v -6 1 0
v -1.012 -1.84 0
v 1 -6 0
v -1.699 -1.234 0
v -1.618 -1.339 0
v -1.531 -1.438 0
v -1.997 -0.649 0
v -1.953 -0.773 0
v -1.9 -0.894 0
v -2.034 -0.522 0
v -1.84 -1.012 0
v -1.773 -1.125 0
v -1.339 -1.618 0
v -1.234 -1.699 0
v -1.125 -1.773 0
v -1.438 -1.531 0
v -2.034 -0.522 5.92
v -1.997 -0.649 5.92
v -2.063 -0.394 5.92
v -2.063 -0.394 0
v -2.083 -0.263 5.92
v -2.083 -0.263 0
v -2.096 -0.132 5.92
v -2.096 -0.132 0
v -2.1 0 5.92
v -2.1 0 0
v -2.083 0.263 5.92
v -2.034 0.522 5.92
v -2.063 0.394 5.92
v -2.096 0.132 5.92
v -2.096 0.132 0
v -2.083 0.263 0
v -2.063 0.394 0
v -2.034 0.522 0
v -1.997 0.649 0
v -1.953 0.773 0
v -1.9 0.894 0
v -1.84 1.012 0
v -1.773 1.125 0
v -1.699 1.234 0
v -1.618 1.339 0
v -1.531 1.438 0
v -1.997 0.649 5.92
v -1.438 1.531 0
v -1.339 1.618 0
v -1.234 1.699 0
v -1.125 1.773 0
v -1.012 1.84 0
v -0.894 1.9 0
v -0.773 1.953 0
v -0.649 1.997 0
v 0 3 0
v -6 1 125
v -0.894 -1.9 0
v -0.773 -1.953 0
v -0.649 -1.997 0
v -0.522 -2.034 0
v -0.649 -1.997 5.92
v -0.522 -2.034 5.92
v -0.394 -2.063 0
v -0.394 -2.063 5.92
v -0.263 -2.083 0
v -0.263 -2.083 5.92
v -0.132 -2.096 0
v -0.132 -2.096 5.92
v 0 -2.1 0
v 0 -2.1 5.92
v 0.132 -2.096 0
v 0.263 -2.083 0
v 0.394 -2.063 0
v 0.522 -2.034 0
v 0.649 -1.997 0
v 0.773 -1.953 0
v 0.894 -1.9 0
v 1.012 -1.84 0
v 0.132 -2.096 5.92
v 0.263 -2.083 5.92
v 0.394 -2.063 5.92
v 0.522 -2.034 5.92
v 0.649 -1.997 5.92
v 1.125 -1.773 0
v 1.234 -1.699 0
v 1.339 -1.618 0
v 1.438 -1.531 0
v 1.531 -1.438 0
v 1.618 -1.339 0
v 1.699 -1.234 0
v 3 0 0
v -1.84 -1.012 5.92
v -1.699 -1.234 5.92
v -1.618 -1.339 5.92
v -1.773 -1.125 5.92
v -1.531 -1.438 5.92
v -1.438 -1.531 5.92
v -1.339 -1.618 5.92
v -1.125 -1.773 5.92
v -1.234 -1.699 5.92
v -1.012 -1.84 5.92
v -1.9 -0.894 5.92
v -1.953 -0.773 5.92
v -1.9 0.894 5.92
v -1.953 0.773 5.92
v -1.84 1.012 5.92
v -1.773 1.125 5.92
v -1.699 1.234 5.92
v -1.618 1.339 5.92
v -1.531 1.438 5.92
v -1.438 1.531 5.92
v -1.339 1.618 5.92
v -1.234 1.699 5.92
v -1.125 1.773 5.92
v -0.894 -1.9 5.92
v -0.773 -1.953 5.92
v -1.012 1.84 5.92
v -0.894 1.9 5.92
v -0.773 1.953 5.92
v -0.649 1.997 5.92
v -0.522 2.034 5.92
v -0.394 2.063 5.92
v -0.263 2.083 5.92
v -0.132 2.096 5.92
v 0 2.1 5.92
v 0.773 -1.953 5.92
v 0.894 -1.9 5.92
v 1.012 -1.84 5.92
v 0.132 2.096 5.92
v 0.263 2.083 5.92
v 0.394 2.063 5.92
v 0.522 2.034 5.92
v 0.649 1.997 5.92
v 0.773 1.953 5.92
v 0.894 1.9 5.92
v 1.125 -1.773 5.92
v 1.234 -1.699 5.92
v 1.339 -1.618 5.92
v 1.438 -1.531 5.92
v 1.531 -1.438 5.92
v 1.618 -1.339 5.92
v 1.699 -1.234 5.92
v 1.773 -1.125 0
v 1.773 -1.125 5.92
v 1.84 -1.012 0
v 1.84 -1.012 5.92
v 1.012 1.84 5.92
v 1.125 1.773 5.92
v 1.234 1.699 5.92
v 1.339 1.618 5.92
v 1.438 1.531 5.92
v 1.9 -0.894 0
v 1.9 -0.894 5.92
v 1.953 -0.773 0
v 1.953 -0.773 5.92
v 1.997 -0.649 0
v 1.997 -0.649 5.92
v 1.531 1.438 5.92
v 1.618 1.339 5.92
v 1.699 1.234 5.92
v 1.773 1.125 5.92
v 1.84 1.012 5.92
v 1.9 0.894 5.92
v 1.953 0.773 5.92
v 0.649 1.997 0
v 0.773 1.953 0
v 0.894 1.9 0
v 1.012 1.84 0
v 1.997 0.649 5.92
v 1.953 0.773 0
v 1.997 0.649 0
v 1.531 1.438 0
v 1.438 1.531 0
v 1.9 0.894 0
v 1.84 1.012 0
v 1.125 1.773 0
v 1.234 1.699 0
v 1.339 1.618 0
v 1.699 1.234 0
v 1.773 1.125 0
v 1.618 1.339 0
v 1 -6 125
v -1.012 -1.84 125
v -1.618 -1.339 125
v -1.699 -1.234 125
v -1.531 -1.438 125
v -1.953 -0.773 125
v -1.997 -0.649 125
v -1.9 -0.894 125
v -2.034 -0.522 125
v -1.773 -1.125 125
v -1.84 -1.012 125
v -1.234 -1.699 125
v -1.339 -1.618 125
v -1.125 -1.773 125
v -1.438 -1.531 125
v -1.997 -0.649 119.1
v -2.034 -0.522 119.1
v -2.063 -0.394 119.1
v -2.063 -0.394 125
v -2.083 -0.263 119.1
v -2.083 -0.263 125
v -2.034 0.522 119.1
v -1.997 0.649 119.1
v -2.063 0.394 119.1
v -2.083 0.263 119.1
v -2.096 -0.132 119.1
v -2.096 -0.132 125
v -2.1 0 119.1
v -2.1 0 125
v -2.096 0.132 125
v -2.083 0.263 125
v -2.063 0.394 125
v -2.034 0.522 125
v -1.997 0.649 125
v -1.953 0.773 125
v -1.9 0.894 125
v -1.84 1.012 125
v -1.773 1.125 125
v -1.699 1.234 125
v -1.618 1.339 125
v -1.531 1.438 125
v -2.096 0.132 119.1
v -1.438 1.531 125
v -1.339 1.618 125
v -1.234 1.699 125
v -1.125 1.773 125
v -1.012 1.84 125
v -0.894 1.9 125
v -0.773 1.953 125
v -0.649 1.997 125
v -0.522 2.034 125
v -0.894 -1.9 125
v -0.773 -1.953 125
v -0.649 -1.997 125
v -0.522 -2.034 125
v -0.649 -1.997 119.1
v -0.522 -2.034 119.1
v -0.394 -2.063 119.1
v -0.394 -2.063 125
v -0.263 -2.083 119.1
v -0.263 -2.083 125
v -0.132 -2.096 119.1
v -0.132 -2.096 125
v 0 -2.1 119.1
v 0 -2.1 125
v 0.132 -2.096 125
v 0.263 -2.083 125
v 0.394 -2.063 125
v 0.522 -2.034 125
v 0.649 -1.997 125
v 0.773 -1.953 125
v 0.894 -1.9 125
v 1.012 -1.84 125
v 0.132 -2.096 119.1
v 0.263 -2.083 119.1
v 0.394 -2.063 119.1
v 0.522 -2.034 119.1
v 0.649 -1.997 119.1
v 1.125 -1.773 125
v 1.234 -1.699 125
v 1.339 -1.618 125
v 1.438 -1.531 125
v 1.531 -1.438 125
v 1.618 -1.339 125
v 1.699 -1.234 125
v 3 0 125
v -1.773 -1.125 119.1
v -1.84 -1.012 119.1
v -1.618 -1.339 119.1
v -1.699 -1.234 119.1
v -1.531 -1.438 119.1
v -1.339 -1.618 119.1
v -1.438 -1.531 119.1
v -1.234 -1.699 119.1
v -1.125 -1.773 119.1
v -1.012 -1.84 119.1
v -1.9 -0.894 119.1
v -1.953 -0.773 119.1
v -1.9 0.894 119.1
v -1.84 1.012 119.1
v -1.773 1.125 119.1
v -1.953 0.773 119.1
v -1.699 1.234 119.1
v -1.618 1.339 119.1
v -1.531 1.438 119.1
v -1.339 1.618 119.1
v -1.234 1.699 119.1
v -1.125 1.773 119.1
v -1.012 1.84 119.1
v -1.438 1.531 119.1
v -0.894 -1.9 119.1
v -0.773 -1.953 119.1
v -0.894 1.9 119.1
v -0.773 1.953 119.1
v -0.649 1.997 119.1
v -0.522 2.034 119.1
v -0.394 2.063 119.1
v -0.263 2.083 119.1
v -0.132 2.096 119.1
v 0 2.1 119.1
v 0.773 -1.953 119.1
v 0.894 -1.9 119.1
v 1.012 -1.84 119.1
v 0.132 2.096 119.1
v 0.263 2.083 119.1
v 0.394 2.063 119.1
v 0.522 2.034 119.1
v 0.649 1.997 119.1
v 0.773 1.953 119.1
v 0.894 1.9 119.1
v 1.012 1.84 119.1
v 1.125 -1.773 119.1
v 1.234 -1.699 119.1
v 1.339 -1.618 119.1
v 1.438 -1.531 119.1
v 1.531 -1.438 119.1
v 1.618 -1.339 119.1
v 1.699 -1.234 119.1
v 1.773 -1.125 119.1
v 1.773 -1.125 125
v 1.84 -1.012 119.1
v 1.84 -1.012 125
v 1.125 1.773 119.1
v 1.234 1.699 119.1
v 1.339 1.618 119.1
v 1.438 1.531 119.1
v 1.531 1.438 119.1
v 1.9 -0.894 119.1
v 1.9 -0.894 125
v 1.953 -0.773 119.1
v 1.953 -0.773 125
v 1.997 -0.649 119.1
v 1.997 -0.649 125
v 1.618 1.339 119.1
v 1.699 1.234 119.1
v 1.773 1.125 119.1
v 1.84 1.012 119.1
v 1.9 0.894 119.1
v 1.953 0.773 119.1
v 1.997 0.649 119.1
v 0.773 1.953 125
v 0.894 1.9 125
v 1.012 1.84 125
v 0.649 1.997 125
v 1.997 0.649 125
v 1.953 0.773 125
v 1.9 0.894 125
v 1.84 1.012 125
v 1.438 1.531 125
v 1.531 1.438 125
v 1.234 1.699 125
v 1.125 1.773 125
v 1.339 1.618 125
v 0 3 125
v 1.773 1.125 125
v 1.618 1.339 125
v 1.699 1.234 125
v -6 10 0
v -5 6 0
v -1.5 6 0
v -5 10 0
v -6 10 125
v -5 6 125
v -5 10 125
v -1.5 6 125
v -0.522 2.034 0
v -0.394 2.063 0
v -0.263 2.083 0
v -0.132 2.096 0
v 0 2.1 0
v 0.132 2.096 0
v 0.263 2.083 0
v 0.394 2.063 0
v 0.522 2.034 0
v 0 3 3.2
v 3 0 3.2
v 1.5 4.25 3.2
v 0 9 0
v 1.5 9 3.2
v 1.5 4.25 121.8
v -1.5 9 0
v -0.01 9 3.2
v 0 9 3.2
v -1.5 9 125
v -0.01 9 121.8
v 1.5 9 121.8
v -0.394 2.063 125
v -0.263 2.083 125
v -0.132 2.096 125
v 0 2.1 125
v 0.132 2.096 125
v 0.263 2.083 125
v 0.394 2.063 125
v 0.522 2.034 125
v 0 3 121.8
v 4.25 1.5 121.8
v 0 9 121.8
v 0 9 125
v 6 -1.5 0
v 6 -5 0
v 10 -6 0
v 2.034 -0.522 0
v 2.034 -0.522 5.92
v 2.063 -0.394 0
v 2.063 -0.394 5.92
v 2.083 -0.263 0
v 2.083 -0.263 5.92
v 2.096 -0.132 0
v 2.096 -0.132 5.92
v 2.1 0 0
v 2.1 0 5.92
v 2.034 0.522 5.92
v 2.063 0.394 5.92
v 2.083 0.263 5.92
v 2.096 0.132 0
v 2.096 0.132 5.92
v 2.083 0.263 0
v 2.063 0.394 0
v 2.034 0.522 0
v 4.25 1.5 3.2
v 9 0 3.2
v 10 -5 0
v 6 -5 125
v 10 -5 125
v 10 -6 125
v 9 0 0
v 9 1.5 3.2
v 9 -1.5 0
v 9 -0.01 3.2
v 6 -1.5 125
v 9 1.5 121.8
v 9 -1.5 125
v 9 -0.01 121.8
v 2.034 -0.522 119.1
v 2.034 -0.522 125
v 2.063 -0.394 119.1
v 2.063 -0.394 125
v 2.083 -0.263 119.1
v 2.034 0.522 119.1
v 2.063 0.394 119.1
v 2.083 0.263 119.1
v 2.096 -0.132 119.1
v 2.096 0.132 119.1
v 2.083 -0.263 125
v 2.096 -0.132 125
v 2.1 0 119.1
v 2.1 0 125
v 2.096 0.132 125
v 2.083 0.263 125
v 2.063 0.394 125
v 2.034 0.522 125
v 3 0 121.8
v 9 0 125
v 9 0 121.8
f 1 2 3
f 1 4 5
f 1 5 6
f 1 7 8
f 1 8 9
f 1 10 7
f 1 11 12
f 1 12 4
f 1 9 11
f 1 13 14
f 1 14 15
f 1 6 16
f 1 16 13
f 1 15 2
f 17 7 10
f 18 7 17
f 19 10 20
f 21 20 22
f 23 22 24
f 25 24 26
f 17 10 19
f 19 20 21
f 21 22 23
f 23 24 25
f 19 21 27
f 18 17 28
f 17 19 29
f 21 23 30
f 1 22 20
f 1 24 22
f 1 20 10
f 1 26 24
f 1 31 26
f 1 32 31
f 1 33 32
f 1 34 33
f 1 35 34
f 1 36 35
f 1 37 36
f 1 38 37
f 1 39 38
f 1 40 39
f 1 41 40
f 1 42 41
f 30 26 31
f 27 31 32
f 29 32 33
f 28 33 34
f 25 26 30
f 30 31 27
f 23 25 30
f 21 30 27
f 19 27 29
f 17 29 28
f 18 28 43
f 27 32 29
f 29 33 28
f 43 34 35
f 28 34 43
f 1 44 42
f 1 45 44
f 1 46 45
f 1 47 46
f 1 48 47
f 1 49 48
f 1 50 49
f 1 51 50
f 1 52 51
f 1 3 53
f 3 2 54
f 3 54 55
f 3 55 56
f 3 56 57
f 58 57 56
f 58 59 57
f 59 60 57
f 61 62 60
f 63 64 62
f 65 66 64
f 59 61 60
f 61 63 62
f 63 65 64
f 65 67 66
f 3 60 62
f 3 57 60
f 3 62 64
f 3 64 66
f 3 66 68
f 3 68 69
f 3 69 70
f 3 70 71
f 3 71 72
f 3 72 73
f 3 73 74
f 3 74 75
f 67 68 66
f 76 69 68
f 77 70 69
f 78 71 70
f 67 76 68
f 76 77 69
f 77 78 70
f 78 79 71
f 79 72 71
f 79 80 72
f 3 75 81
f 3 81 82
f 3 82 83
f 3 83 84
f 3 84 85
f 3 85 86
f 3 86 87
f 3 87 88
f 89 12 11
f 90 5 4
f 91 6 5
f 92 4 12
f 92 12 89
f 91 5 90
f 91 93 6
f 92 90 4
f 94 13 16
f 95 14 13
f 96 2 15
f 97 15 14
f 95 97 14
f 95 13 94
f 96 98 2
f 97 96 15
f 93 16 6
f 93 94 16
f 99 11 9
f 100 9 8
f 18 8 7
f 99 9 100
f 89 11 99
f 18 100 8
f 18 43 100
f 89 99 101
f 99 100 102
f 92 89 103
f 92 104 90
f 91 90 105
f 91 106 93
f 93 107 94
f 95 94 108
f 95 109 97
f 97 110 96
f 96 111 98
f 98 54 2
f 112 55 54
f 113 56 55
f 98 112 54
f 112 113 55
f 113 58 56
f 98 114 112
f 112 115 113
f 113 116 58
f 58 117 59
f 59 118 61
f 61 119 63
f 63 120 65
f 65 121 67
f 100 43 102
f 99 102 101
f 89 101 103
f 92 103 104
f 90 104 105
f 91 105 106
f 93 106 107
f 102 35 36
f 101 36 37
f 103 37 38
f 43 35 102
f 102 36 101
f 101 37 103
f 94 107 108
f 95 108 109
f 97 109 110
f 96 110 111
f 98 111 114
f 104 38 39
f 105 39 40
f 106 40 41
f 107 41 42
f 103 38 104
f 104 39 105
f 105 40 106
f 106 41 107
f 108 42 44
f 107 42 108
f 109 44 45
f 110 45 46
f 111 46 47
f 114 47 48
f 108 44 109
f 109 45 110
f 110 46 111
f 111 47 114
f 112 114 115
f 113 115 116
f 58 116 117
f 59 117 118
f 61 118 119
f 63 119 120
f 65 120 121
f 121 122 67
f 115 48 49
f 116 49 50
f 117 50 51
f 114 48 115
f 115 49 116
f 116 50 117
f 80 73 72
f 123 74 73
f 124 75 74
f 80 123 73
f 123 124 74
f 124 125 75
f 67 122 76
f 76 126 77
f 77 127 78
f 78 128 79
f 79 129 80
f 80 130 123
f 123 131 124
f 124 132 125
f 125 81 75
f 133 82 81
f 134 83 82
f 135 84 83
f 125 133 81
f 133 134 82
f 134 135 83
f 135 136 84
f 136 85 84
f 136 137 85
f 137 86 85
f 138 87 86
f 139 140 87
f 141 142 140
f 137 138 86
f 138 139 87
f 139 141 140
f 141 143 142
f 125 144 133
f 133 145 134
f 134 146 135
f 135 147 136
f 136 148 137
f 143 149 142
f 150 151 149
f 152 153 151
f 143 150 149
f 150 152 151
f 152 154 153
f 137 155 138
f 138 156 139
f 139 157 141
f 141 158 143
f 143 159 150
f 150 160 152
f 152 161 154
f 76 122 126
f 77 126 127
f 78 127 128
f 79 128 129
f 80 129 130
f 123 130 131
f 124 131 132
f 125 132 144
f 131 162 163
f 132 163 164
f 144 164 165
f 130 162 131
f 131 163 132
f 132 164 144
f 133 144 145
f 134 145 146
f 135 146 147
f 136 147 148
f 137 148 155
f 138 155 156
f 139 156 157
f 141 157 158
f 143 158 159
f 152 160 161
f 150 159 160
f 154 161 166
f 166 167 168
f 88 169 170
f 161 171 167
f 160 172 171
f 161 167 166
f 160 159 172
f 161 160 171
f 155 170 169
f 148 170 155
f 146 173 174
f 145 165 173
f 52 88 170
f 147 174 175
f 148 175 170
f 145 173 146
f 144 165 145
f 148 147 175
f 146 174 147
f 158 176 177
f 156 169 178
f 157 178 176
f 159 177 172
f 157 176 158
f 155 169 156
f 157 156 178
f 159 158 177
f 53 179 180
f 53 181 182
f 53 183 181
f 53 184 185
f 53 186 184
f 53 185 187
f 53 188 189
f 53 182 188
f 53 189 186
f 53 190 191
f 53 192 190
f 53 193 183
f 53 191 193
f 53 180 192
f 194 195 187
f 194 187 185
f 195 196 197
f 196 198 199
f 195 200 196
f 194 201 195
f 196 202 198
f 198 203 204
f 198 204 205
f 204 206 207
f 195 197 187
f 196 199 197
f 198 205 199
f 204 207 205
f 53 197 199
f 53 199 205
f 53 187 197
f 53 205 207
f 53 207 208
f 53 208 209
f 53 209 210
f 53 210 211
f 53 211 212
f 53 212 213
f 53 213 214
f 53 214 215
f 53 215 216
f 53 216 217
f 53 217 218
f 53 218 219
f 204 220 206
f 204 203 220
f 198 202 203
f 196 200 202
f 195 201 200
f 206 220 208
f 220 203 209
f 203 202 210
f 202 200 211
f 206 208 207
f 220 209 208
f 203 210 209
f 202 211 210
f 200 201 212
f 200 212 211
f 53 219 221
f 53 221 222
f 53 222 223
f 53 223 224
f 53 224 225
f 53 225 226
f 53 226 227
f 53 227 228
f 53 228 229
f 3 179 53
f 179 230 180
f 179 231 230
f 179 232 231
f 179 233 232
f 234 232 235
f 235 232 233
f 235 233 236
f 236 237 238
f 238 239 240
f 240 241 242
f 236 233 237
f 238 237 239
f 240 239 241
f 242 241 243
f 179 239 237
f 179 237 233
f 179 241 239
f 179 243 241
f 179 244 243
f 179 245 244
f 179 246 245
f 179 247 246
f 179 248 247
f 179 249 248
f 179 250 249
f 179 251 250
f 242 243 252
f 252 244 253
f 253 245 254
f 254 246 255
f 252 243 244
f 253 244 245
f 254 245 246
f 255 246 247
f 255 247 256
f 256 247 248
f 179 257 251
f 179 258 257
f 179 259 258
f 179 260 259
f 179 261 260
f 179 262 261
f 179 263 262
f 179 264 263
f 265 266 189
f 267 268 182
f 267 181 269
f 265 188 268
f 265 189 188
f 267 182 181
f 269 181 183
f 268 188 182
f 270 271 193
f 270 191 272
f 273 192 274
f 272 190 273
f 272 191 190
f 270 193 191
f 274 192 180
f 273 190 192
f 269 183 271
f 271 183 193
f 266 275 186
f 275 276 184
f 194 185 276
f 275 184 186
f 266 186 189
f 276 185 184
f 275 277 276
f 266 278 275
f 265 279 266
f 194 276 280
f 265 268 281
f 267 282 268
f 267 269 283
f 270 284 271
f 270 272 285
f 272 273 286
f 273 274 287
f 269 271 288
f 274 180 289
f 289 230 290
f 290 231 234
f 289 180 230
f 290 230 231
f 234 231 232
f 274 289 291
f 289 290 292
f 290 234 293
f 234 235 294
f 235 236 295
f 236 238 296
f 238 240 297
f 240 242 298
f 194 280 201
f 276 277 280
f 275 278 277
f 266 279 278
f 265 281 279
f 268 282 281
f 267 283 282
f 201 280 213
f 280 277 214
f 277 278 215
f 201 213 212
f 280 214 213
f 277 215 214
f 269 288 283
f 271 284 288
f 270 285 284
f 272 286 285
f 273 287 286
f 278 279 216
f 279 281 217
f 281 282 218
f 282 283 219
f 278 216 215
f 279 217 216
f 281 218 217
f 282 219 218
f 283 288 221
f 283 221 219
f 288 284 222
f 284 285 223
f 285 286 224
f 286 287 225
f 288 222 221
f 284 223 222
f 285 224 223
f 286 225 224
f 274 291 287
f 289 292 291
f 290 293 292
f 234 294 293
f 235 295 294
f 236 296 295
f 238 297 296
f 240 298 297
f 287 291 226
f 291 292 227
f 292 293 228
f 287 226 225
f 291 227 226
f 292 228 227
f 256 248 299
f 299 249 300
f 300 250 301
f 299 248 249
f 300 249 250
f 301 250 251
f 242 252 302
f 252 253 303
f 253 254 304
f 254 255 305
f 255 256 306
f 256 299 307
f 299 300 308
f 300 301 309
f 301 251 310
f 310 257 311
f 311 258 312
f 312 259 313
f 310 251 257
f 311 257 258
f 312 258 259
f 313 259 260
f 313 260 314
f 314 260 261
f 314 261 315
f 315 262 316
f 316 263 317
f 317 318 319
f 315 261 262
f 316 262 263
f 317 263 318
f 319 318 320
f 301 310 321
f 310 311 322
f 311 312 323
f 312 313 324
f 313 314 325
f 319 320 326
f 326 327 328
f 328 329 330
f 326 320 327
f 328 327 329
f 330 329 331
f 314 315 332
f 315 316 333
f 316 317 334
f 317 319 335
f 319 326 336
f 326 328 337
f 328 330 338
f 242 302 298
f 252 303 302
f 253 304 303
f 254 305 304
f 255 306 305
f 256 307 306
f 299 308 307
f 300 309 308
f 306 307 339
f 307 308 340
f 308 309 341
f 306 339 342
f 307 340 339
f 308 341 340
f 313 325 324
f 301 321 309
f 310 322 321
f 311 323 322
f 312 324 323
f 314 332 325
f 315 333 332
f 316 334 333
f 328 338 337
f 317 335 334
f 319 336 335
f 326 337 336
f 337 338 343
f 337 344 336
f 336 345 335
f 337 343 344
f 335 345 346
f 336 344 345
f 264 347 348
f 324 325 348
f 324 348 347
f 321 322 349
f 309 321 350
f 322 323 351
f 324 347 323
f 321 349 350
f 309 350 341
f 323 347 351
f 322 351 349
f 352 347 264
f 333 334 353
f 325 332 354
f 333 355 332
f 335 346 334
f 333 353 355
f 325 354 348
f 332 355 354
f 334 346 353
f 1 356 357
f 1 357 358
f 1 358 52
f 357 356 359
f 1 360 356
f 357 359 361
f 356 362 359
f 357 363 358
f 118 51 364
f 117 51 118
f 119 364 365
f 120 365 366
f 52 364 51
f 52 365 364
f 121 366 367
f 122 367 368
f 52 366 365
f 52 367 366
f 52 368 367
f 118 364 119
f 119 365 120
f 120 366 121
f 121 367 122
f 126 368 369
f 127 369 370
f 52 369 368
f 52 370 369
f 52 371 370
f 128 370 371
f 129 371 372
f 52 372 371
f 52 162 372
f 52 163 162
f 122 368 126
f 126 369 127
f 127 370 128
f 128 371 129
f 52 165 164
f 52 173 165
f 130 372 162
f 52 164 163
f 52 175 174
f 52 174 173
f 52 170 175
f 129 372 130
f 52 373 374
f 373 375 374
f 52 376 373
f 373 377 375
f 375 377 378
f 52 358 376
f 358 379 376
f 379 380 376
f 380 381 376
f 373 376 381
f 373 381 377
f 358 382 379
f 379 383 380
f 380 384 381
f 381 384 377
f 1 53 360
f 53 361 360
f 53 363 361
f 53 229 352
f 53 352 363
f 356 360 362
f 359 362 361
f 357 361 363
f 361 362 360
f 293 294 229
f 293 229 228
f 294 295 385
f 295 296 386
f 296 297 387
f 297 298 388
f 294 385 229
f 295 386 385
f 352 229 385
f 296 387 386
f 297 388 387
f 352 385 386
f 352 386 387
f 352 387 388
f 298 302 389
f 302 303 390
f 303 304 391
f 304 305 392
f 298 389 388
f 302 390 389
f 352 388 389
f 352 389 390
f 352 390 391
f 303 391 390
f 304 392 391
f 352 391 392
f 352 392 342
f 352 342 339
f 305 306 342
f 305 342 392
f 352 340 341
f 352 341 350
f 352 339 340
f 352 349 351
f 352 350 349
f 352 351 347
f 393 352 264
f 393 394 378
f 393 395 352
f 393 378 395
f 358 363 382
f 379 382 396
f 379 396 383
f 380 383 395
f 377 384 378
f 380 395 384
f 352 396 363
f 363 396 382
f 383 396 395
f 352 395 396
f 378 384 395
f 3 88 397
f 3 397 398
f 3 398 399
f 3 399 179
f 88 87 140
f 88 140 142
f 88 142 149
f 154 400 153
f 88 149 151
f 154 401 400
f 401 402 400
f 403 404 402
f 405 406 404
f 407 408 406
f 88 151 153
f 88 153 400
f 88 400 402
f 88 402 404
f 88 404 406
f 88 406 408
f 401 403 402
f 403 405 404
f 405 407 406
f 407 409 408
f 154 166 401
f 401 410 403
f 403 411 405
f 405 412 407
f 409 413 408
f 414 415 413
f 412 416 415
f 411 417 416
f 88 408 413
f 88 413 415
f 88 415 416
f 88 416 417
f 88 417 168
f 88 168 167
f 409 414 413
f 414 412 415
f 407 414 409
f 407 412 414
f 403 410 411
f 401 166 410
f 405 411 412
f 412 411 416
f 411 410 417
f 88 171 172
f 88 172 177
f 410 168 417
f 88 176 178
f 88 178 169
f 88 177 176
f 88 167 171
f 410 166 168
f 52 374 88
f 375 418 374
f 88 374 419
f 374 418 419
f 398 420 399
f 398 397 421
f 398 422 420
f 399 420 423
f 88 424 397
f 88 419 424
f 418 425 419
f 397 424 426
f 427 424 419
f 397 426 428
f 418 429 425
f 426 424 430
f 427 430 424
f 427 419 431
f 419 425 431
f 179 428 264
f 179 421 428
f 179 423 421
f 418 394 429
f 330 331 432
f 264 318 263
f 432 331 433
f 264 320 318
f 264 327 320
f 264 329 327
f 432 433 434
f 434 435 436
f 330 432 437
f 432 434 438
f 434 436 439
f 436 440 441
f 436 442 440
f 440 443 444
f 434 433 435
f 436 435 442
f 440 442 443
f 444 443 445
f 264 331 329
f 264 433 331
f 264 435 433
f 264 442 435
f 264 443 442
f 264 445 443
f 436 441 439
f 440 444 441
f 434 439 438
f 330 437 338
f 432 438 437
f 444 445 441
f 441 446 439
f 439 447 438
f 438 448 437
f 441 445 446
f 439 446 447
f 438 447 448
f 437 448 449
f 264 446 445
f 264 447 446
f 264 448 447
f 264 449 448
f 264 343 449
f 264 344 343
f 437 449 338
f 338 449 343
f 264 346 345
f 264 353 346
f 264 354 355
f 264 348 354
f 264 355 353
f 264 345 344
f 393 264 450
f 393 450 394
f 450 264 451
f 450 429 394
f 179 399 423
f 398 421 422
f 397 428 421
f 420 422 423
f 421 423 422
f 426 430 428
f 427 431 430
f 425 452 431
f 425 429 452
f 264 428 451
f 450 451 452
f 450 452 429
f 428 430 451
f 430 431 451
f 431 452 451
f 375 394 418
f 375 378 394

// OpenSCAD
// file: Kante.scad
$fn = 100;
tiny = 0.01;


/*

module stl_model() {
  import("Kante_5cm.stl");
}

color("blue") translate([30,0,0]) stl_model();
*/


/*************************************************
 * hoehe in mm
 ************************************************/

module Kante(hoehe) {
  x1 = 10;   // #1. unten rechts
  y1 = -6;   // #1.
  y2 = -5;   // #2
  x2 = +6;   // #3
  y3 = -1.5; // #4
  x3 = +9;   // #5
  y4 = +0;   // #6
  x4 = +3;   // #7
  y5 = +1;   // #8
  //--
  y6 = +1.5;
  x5 = 4.25;
  y7 = 3;
  
  dh = 3   + 0.2; // Toleranz
  h1 = hoehe - 2*dh;  

  h2 = 5.7 + 0.2; // Toleranz Innenloch
  d2 = 4.0 + 0.2; // Toleranz Innenloch

  color("red")
  difference() {
     union() {
        //color("red")
        linear_extrude(height=hoehe)
        polygon(points=[
          [x1,y1], // 10,-6
          [x1,y2], // 10,-5
          [x2,y2], //  6,-5
          [x2,y3], //  6,-1.5 
          [x3,y3], //  9,-1.5
          [x3,y4], //  9,0
          [x4,y4], //  3,0
          // copies from here.
          [y4,x4], //  0,3
          [y4,x3], //  0,9
          [y3,x3], // -1.5,9
          [y3,x2], // -1.5,6
          [y2,x2], //  -5,6
          [y2,x1], //  -5,10
          [y1,x1], //  -6,10
          [y1,y5], //  -6,1
          [y5,y1], //  -6,1
          [x1,y1]  // 10,-6
          ]); // polygon
        translate([0,0,dh])
        linear_extrude(height=h1)
        polygon(points=[
          [x3,y4 - tiny], // 9,-0
          [x3,y6], // 9,1.5
          [x5,y6], // 4,1.5
          [y6,x5], // 1.5,4
          [y6,x3], // 1.5,9
          [y4 - tiny,x3], // -0,9
          [y4 - tiny,y7], // -0,3
          [y7,y4 - tiny], // 3,-0
          [x3,y4 - tiny], // 9,-0
          ]); // polygon
        } // union

     translate([0,0,-tiny])    cylinder(h=h2+3*tiny, d=d2); // Loch unten
     translate([0,0,hoehe-h2]) cylinder(h=h2+2*tiny, d=d2); // Loch oben
  } // difference
}
// main file
use <Kante.scad>
$fn = 100;

Kante(125); // hoehe in mm
